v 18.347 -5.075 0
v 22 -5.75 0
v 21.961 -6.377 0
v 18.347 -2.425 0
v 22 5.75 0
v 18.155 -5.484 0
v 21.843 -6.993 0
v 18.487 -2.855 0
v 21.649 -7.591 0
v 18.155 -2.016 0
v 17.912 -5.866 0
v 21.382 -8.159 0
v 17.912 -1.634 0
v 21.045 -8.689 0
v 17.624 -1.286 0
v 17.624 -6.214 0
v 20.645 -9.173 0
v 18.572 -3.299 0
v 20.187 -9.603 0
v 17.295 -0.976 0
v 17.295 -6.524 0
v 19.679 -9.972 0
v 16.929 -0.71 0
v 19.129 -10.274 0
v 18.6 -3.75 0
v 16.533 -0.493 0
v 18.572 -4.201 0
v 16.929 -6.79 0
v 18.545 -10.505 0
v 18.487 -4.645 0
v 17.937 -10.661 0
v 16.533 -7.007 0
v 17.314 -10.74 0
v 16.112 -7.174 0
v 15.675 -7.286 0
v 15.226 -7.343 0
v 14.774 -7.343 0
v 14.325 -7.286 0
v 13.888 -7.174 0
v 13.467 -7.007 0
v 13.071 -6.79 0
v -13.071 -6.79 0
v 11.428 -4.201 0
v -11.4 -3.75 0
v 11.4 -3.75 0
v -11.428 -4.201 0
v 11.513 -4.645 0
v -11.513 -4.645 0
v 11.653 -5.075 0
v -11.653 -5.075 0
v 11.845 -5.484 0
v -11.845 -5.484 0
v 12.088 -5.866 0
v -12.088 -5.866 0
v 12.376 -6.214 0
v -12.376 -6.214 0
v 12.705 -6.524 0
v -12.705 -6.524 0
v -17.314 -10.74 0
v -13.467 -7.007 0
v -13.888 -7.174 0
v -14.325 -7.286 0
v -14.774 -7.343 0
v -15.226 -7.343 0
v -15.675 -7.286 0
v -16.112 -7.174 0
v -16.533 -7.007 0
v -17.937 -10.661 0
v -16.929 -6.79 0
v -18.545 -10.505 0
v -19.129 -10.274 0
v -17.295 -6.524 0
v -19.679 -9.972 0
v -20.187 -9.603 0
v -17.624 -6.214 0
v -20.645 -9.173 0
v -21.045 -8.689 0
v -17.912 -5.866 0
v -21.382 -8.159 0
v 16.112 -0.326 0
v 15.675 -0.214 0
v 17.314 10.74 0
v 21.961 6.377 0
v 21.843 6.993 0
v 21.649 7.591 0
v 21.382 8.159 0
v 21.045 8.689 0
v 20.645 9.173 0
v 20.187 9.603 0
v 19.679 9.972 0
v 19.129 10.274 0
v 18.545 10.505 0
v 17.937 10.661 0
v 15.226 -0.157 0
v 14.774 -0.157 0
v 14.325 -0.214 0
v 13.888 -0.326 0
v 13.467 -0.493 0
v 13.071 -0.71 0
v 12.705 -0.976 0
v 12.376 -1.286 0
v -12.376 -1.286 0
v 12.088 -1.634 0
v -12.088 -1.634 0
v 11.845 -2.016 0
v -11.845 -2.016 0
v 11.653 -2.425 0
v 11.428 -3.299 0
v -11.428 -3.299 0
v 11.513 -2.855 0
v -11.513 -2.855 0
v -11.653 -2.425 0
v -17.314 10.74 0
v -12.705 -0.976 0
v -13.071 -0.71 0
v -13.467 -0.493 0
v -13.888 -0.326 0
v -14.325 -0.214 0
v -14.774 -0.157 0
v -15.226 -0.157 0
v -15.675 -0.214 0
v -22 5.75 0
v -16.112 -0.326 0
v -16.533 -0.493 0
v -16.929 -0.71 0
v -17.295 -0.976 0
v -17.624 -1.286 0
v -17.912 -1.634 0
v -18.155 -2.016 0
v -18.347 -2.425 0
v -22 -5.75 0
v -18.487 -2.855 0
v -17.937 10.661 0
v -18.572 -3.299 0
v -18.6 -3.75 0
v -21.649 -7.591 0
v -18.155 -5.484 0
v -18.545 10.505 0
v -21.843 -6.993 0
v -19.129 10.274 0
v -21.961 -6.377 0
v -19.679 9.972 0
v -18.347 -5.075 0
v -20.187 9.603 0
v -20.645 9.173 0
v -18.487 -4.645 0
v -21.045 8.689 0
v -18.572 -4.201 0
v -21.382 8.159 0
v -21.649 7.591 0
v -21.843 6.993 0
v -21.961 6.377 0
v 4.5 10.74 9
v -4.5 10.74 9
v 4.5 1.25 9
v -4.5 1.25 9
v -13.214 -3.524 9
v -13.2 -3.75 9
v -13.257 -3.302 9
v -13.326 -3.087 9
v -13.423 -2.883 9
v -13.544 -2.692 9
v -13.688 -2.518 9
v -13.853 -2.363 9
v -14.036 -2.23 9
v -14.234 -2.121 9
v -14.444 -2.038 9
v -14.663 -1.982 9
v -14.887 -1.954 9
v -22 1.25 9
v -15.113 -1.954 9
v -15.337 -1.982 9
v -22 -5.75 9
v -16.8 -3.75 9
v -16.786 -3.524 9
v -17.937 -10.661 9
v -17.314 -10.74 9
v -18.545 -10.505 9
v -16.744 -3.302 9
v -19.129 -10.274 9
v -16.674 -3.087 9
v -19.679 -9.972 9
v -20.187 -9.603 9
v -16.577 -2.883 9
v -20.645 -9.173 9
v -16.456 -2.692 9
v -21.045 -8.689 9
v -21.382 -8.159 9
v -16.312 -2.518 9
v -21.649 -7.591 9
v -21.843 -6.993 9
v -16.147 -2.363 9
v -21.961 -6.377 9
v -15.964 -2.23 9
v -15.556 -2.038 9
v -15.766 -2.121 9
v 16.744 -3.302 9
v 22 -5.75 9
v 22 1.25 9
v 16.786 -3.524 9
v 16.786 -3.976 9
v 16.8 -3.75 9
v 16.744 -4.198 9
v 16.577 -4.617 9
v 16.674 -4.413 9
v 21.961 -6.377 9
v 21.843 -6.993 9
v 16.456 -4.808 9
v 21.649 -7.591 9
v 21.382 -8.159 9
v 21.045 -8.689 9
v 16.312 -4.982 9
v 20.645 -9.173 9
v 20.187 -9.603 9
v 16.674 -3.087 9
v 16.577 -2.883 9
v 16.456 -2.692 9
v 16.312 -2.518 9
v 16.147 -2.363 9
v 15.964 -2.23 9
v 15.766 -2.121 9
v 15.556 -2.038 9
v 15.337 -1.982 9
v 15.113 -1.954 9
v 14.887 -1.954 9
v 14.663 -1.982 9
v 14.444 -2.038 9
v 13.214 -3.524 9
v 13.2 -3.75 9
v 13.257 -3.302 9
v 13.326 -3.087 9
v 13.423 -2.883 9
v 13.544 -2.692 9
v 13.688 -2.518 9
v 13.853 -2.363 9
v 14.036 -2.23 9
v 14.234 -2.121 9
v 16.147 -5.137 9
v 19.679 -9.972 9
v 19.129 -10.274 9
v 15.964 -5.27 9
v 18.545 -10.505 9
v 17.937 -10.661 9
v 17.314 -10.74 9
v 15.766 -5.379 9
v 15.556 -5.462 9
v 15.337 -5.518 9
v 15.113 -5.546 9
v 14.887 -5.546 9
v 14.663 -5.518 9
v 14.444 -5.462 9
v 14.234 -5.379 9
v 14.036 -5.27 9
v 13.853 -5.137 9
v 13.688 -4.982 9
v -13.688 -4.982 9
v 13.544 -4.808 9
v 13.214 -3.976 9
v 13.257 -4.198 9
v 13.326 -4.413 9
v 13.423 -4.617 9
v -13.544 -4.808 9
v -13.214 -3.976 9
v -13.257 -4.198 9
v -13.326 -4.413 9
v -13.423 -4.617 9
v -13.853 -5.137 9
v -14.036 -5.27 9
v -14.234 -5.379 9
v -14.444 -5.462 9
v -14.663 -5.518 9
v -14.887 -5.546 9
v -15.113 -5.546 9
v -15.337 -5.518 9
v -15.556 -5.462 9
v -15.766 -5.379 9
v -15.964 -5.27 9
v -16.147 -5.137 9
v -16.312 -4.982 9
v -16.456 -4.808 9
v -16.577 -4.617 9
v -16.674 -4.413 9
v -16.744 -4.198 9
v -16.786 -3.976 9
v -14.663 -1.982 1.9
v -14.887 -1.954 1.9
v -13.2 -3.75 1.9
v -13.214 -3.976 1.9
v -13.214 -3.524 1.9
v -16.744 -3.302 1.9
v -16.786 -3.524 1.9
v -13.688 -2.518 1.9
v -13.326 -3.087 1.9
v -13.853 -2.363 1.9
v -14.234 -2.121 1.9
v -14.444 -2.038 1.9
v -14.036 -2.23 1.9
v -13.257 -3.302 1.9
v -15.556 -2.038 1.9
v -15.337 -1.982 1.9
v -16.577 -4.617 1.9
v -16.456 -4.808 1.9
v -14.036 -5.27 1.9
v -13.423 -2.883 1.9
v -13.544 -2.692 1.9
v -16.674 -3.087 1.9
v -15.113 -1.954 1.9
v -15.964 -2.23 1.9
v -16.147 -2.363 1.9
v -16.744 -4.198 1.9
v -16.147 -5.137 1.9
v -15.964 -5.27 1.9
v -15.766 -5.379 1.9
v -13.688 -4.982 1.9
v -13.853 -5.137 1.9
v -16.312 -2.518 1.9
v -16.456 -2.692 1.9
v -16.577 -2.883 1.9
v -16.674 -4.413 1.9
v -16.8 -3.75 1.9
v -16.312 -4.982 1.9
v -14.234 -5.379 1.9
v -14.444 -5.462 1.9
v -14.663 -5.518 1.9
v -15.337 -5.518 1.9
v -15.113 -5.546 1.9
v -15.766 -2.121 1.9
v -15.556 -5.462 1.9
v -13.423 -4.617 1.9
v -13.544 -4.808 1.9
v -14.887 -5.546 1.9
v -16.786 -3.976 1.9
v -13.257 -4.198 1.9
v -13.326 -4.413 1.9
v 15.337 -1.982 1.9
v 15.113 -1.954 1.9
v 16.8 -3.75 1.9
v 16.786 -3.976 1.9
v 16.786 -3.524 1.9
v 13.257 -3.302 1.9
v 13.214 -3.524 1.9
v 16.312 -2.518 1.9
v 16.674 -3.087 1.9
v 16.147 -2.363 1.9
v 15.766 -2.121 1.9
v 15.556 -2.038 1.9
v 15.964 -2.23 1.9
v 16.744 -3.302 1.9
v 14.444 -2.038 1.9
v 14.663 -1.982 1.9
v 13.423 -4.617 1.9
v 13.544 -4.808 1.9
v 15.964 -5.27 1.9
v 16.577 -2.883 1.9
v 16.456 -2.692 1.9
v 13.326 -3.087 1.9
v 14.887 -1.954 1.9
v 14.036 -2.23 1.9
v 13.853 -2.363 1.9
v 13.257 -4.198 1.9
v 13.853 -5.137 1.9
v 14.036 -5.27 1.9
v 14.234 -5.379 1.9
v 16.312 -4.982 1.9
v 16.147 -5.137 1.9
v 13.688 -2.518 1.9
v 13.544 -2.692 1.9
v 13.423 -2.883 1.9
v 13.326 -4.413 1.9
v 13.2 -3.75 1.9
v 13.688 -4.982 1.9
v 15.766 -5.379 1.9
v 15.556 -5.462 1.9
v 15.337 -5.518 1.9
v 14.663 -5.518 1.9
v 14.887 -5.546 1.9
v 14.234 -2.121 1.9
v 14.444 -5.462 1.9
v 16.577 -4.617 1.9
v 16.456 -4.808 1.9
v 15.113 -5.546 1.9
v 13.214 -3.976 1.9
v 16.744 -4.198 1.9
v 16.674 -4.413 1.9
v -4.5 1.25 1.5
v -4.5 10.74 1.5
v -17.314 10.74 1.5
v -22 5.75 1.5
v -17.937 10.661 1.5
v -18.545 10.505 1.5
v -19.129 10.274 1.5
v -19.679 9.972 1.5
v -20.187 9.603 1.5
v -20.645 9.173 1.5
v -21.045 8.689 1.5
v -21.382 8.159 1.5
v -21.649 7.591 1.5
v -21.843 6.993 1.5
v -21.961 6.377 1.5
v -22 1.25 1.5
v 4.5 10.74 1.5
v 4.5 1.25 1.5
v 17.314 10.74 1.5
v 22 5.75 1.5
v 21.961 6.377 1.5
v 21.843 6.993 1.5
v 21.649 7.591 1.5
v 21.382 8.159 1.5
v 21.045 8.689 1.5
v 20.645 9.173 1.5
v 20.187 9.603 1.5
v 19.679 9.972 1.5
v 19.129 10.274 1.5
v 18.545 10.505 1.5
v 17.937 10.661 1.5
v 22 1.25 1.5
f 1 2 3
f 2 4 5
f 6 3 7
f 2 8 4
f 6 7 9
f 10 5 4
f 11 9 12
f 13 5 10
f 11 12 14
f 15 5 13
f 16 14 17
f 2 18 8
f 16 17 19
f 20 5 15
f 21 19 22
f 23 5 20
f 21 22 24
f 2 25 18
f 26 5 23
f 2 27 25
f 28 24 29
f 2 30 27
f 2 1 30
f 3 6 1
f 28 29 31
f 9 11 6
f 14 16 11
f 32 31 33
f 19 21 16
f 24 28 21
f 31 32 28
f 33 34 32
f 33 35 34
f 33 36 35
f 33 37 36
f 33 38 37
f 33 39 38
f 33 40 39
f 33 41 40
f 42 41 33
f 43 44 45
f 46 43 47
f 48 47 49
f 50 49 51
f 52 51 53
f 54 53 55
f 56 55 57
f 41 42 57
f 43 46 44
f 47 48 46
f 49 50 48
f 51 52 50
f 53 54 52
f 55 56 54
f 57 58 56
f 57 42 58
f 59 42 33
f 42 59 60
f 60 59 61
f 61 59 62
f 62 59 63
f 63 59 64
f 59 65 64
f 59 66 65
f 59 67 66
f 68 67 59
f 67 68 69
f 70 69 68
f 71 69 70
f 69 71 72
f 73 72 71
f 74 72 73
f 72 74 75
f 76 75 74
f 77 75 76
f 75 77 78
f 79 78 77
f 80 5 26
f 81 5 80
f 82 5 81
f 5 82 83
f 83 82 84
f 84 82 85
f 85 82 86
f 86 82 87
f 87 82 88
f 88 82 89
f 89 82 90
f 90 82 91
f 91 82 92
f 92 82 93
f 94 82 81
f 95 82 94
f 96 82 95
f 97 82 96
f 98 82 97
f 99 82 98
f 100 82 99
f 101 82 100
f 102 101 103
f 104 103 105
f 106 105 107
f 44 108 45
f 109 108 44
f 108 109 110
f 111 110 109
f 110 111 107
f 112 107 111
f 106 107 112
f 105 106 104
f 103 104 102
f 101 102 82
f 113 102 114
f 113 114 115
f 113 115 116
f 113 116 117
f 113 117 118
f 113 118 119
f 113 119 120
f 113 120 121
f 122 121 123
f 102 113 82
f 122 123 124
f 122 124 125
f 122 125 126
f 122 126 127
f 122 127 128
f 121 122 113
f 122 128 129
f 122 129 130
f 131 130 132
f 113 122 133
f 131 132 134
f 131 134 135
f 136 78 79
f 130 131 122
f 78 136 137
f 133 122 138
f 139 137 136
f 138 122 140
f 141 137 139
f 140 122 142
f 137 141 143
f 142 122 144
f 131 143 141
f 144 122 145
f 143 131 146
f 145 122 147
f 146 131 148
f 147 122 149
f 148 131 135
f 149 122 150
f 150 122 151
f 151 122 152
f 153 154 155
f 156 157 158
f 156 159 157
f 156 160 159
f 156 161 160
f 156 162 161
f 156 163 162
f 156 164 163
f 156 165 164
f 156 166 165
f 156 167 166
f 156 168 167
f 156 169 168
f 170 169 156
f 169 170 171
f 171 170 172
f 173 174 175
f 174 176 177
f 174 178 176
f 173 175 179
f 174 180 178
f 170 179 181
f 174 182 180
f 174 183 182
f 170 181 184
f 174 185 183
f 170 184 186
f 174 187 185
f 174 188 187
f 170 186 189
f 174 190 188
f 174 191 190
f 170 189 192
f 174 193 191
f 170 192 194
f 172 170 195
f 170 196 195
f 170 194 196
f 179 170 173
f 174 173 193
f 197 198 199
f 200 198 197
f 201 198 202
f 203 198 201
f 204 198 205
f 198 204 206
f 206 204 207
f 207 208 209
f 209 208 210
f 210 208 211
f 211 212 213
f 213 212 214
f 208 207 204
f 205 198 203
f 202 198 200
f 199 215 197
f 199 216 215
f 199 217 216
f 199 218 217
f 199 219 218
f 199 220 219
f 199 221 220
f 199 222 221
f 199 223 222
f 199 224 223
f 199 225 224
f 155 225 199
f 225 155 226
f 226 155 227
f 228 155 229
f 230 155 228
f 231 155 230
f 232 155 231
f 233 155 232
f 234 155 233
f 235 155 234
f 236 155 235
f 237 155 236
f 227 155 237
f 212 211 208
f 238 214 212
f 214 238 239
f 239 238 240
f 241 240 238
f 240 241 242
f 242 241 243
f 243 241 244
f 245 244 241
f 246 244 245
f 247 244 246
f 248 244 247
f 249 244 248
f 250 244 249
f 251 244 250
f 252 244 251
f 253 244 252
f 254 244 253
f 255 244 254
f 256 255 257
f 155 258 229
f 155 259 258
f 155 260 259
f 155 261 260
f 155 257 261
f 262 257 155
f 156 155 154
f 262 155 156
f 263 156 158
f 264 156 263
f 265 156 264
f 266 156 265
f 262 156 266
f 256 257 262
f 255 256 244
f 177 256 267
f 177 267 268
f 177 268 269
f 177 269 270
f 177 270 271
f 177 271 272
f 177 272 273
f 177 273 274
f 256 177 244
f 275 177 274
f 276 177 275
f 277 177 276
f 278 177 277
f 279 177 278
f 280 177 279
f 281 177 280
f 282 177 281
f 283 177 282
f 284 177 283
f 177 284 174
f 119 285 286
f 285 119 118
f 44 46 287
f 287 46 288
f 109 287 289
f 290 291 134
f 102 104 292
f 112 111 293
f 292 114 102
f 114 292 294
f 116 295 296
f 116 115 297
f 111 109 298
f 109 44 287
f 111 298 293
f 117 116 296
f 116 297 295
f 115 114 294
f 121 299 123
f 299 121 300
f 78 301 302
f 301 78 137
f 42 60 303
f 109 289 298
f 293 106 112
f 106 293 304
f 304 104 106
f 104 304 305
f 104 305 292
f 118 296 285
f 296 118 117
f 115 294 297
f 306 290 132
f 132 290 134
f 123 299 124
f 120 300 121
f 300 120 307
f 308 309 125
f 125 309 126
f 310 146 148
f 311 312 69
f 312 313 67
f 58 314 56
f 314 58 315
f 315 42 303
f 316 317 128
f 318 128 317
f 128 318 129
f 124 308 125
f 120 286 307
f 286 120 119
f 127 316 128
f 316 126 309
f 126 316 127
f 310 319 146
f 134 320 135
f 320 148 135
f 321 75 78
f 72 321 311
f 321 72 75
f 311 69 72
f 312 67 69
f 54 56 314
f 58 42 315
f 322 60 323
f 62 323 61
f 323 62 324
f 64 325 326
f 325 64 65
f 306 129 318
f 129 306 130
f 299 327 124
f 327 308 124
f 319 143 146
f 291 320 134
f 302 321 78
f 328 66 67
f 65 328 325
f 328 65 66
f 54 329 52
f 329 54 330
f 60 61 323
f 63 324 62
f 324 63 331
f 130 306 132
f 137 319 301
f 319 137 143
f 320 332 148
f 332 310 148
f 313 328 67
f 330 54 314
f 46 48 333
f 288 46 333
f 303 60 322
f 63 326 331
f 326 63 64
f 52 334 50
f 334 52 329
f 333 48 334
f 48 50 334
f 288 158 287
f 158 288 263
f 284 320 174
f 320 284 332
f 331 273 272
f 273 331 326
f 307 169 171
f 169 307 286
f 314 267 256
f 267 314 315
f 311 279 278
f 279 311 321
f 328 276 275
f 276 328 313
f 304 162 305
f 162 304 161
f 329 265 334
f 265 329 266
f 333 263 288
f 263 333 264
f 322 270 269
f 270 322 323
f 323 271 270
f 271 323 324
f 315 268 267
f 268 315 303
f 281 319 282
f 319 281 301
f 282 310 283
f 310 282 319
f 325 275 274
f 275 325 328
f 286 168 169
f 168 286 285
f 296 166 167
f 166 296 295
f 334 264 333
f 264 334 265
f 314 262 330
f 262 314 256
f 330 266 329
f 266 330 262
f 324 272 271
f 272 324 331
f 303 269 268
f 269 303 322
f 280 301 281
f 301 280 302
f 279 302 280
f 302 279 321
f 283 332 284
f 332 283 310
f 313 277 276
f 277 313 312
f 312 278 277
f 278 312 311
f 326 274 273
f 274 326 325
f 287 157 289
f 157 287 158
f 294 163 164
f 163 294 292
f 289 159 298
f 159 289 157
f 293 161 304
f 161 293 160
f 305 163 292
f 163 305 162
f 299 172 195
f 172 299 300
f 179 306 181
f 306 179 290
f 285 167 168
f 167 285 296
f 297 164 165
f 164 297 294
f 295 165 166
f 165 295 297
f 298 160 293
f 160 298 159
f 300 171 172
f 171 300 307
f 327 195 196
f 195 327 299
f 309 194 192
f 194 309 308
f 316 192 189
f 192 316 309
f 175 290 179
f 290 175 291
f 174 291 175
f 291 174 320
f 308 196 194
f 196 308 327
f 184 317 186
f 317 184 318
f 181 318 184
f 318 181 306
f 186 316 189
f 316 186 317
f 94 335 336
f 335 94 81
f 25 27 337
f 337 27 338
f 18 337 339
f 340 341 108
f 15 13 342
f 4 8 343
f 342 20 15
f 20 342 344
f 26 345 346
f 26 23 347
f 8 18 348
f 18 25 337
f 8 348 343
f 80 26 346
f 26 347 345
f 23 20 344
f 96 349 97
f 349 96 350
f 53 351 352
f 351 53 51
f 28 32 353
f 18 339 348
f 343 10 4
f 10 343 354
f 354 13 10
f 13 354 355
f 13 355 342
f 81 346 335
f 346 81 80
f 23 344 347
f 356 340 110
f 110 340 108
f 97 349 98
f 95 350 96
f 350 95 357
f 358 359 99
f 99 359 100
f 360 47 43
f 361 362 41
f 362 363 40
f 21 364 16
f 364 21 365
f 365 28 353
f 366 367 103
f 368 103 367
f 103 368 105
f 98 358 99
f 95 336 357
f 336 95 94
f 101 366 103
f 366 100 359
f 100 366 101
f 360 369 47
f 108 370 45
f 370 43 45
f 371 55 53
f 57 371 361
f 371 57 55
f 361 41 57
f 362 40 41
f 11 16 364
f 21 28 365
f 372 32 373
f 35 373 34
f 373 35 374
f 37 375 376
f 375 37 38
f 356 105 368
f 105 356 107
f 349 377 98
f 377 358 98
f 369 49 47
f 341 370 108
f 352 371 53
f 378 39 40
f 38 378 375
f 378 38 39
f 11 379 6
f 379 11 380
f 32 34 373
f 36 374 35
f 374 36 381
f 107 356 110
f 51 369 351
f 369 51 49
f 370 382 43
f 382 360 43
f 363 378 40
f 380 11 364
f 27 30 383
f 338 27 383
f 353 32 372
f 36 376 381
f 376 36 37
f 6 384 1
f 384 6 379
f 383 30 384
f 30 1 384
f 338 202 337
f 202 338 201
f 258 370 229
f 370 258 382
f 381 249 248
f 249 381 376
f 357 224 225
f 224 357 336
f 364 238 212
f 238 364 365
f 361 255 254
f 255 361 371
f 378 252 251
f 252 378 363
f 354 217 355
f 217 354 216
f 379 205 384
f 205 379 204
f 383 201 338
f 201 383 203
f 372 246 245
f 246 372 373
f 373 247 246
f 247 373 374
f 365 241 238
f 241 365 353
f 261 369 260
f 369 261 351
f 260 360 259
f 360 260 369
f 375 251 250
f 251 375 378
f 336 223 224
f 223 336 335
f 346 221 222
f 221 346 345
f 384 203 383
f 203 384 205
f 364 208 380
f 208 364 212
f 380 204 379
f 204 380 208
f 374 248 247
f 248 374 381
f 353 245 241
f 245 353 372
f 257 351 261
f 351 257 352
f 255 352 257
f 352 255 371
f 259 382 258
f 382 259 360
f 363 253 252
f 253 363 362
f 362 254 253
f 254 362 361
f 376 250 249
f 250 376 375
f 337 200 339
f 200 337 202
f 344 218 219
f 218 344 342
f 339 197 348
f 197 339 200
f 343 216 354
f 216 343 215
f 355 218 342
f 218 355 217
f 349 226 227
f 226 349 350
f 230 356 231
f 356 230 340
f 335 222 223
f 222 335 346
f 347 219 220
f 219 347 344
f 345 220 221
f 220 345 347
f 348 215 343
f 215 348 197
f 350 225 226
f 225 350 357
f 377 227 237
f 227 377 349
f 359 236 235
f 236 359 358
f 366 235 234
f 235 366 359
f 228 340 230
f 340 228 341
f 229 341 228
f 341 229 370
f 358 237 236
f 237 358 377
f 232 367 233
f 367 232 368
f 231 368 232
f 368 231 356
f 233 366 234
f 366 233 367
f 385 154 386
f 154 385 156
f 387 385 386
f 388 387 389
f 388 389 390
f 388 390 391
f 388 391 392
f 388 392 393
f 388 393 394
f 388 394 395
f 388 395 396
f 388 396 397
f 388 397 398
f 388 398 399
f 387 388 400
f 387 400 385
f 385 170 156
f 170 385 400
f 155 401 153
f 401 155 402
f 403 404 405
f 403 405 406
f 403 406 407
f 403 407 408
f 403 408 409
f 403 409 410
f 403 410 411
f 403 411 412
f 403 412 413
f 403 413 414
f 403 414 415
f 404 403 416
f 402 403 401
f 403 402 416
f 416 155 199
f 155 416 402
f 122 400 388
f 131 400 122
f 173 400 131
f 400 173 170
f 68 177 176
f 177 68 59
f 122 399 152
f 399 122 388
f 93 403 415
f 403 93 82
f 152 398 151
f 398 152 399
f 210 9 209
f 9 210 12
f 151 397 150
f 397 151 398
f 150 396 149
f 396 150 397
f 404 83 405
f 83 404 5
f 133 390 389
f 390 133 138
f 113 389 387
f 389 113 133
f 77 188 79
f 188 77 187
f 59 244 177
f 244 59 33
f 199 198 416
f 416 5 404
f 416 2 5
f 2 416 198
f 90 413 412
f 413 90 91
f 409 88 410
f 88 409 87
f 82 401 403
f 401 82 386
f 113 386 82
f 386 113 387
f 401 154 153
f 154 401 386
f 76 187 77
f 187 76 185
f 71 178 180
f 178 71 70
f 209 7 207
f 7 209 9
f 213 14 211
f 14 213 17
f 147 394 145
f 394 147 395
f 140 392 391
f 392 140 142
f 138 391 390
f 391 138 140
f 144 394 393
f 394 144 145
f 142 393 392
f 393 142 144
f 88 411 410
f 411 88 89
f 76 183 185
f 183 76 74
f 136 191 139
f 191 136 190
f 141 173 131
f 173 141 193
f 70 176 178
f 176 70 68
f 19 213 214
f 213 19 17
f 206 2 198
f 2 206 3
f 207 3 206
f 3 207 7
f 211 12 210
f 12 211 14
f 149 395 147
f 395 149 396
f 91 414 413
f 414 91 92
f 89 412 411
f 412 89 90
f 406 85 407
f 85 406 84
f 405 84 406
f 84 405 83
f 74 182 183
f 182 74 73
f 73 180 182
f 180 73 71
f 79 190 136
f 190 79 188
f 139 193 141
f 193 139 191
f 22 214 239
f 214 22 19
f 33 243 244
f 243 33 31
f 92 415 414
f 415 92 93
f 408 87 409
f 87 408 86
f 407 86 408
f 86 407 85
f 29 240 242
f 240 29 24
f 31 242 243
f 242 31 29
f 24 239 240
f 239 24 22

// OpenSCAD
$fn = 50;


difference() {
	union() {
		hull() {
			translate(v = [-17.0000000000, 5.7500000000, 0]) {
				cylinder(h = 9, r = 5);
			}
			translate(v = [17.0000000000, 5.7500000000, 0]) {
				cylinder(h = 9, r = 5);
			}
			translate(v = [-17.0000000000, -5.7500000000, 0]) {
				cylinder(h = 9, r = 5);
			}
			translate(v = [17.0000000000, -5.7500000000, 0]) {
				cylinder(h = 9, r = 5);
			}
		}
	}
	union() {
		translate(v = [-15, -3.7500000000, 0]) {
			rotate(a = [180, 0, 0]) {
				difference() {
					union() {
						#translate(v = [0, 0, -9.0000000000]) {
							cylinder(h = 9, r = 1.5000000000);
						}
						#translate(v = [0, 0, -1.9000000000]) {
							cylinder(h = 1.9000000000, r1 = 1.8000000000, r2 = 3.6000000000);
						}
						#translate(v = [0, 0, -9.0000000000]) {
							cylinder(h = 9, r = 1.8000000000);
						}
						#translate(v = [0, 0, -9.0000000000]) {
							cylinder(h = 9, r = 1.5000000000);
						}
					}
					union();
				}
			}
		}
		translate(v = [15, -3.7500000000, 0]) {
			rotate(a = [180, 0, 0]) {
				difference() {
					union() {
						#translate(v = [0, 0, -9.0000000000]) {
							cylinder(h = 9, r = 1.5000000000);
						}
						#translate(v = [0, 0, -1.9000000000]) {
							cylinder(h = 1.9000000000, r1 = 1.8000000000, r2 = 3.6000000000);
						}
						#translate(v = [0, 0, -9.0000000000]) {
							cylinder(h = 9, r = 1.8000000000);
						}
						#translate(v = [0, 0, -9.0000000000]) {
							cylinder(h = 9, r = 1.5000000000);
						}
					}
					union();
				}
			}
		}
		#translate(v = [-160.5000000000, 1.2500000000, 1.5000000000]) {
			cube(size = [156, 100, 7.5000000000]);
		}
		#translate(v = [4.5000000000, 1.2500000000, 1.5000000000]) {
			cube(size = [156, 100, 7.5000000000]);
		}
	}
}
